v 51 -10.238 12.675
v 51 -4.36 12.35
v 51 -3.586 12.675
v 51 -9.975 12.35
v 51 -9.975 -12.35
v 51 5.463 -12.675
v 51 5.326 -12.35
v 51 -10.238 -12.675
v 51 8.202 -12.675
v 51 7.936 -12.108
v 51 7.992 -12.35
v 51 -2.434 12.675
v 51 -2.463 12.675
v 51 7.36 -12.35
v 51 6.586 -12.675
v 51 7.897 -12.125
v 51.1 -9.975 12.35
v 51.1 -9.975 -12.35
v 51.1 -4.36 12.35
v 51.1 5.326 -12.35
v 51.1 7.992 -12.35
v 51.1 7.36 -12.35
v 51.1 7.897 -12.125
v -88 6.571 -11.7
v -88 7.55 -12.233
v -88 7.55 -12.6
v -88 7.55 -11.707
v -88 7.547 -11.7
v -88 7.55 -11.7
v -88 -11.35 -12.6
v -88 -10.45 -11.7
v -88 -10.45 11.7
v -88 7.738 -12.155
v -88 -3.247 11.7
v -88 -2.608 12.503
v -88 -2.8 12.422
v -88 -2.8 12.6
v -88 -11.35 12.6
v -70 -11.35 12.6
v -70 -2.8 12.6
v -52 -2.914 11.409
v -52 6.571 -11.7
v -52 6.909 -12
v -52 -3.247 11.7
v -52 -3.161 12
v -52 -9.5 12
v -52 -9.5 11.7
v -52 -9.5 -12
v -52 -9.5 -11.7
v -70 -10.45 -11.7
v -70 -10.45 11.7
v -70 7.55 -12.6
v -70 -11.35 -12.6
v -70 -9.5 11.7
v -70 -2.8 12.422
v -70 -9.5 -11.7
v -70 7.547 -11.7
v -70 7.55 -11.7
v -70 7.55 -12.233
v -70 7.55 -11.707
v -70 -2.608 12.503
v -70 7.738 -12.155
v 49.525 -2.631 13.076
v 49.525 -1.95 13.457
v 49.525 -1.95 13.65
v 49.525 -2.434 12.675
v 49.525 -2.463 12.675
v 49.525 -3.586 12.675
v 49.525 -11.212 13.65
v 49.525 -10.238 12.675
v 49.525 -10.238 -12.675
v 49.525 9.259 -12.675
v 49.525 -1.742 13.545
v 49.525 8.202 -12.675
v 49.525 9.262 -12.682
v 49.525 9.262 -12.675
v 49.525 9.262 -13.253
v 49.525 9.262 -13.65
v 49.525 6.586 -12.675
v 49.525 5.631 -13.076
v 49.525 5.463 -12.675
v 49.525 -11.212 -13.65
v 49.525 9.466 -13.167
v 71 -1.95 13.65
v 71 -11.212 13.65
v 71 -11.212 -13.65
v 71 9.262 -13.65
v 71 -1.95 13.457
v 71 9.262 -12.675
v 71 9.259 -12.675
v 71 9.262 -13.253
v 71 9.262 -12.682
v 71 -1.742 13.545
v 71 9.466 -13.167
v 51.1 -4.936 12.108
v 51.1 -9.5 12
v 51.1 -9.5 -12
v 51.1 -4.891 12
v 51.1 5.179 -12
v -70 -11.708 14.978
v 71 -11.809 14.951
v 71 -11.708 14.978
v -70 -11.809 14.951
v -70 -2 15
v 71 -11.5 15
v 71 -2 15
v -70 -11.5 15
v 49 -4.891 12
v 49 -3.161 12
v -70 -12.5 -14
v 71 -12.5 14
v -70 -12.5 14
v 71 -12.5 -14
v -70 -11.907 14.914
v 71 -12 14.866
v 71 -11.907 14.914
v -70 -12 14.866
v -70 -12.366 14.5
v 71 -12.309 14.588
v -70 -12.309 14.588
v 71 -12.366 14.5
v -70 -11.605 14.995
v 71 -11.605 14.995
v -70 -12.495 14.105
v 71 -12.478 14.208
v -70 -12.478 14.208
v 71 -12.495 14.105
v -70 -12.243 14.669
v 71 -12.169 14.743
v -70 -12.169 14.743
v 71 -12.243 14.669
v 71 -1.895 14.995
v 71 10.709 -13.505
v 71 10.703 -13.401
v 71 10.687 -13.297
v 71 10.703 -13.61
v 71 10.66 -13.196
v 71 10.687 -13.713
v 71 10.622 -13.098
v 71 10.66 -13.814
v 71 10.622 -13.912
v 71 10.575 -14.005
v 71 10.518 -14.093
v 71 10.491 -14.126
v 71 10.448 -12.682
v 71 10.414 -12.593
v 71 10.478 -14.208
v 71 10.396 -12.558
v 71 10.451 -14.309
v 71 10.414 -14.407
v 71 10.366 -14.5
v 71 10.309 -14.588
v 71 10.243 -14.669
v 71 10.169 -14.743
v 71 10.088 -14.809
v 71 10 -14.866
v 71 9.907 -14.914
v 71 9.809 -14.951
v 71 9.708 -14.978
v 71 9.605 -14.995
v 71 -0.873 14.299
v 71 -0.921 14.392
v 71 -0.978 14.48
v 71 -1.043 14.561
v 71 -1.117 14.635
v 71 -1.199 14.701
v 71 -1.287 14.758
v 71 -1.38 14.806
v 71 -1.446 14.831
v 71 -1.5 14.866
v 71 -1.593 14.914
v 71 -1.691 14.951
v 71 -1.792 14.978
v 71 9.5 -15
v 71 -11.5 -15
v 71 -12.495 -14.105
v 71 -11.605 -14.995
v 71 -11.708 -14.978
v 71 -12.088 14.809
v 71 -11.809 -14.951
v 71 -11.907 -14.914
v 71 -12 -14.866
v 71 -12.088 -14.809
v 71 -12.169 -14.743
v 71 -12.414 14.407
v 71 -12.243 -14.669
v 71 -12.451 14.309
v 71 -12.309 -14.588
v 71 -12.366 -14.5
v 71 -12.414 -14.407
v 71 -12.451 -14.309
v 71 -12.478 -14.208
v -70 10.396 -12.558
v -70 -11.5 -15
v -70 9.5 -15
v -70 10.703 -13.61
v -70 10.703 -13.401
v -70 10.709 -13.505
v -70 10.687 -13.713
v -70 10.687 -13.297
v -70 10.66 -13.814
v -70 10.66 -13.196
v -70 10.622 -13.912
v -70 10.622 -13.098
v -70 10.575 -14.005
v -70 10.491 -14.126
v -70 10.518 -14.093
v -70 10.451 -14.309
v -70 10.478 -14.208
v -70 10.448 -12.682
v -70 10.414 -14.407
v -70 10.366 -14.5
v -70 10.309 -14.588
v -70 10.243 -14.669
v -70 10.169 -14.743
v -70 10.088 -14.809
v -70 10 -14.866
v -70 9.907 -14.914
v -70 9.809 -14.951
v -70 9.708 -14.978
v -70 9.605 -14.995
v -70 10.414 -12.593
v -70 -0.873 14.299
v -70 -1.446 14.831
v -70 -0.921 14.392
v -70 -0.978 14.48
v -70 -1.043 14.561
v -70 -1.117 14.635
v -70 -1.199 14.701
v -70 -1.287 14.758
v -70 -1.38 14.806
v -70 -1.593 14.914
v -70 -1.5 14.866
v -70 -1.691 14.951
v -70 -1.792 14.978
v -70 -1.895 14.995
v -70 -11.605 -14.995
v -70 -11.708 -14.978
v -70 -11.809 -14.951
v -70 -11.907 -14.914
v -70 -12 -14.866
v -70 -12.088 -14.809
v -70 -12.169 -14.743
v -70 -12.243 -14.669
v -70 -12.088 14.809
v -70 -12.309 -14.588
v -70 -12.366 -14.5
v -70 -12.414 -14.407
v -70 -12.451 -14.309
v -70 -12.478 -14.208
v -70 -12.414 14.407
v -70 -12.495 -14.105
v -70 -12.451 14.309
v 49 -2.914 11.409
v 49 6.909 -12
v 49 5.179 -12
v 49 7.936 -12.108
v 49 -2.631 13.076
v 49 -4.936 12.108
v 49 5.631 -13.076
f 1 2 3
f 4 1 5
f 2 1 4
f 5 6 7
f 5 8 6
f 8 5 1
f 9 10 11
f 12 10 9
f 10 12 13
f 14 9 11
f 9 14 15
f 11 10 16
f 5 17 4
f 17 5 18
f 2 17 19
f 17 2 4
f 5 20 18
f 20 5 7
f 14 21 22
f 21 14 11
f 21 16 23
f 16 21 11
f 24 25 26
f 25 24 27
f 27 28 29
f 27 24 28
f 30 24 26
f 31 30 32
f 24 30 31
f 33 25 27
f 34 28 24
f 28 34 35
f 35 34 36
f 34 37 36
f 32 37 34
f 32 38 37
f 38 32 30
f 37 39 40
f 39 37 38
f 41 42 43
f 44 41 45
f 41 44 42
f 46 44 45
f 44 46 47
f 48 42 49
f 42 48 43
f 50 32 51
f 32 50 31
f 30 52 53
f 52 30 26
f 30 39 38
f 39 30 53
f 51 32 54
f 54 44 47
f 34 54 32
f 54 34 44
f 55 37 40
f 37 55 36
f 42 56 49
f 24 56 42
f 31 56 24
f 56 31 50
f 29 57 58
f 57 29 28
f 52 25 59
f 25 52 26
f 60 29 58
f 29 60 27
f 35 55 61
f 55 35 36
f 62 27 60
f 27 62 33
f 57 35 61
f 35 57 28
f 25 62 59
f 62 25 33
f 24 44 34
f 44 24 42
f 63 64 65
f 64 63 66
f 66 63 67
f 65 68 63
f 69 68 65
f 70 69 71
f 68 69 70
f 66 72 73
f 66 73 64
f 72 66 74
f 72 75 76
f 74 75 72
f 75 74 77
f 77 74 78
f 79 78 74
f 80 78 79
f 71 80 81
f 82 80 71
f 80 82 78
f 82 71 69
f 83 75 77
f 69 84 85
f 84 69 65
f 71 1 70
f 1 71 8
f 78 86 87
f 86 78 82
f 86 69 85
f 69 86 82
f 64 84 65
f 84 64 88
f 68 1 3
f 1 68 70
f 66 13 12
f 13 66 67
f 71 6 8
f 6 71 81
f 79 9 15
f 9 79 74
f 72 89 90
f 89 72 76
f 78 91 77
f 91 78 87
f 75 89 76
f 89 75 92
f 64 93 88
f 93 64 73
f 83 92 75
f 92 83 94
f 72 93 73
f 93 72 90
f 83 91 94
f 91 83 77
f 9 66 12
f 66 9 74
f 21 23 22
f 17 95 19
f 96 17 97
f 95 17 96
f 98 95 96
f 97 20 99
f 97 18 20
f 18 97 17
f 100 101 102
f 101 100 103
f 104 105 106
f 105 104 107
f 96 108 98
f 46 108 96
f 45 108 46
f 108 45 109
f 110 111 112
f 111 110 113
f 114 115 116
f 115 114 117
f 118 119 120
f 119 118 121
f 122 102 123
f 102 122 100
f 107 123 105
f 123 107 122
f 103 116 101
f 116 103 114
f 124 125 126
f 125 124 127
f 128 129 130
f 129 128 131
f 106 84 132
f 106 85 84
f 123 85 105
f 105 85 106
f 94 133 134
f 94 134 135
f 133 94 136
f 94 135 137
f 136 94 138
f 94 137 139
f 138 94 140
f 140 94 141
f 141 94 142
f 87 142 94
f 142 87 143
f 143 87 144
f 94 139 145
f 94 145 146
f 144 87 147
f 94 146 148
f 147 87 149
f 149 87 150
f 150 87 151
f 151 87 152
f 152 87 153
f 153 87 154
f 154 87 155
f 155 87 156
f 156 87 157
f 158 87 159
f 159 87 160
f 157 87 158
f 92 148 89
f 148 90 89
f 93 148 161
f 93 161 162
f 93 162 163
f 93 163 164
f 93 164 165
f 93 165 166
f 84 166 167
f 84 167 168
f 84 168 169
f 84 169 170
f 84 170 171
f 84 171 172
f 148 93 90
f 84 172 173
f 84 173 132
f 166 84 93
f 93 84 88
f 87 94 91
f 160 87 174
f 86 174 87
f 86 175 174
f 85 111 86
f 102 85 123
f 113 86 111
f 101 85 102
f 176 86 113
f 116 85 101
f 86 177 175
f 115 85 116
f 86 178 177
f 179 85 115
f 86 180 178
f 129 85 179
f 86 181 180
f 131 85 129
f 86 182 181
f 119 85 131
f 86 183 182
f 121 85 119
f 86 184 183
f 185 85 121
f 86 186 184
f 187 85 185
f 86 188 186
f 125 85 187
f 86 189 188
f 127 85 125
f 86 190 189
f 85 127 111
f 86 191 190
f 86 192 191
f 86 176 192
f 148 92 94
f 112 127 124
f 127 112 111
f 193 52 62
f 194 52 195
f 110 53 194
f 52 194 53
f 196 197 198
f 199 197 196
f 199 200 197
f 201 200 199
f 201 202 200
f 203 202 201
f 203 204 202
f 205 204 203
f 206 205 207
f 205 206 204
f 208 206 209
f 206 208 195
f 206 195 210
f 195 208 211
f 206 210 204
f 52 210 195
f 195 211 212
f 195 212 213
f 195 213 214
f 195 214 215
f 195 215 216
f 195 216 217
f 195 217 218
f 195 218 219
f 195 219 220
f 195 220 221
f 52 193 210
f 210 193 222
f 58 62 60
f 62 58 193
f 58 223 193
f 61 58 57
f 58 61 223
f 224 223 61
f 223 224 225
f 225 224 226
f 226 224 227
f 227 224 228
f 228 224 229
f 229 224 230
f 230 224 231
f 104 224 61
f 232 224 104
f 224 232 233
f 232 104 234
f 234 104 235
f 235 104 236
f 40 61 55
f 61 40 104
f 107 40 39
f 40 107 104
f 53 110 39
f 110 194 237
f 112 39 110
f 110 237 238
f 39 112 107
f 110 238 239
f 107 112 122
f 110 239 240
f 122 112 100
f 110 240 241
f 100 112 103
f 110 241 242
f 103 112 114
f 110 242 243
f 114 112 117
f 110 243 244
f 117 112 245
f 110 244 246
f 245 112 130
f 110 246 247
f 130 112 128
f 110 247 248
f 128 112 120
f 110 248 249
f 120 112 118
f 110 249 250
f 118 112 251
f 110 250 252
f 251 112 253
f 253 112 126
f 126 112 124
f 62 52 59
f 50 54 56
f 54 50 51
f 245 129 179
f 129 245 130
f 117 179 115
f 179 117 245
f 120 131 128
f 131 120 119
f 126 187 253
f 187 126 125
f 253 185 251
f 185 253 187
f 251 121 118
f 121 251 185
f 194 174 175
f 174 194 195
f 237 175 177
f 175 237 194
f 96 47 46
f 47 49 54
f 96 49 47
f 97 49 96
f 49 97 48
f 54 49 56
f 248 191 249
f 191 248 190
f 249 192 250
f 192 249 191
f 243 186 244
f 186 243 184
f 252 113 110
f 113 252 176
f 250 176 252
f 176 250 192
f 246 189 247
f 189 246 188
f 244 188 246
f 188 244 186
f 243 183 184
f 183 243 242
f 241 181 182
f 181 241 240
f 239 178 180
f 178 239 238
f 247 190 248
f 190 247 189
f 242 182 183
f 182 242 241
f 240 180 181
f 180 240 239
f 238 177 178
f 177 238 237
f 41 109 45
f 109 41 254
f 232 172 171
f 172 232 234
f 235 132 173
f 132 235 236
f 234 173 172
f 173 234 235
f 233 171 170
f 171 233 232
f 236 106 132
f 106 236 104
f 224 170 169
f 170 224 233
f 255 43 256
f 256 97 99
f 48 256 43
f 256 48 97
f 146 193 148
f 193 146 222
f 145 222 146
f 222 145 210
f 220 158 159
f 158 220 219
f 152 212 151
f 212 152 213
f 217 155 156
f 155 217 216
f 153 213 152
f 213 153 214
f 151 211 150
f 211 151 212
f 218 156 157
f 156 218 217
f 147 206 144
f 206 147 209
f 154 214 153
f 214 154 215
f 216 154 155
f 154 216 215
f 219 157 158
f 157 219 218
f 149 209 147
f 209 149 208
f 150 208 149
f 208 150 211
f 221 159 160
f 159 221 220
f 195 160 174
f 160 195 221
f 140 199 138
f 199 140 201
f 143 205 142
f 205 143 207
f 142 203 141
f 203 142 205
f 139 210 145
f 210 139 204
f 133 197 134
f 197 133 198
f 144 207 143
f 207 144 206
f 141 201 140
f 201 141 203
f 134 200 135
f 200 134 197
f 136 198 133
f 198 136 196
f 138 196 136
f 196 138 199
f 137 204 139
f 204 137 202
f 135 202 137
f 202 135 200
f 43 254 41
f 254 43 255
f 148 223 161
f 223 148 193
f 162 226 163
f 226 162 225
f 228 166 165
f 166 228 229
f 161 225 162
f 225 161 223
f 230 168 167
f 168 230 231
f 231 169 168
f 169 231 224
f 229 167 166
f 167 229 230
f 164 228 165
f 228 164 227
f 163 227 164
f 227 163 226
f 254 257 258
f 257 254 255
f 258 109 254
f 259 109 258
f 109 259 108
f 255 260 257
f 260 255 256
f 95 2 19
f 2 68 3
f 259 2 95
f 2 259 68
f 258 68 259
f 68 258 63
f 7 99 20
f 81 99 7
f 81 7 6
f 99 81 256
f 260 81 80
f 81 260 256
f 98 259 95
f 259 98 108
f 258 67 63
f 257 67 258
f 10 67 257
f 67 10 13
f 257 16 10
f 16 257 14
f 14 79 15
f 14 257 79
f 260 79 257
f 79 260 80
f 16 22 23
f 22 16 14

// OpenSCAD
// Tipp Kick Bande


LA = 140.0;          // Länge
BU = 22.0;          // Breite unten
BO = 10.0;          // Breite oben
HO = 30.0;          // Höhe

WA = 1.0;           // Wandstärke


module roundedCube(v) {
    cube(v, center=true);
    translate([0,0,v[2]/2-1])
    rotate([0,90,0])
    cylinder(d=1,h=v[0], $fn=60, center=true);
    translate([0,0,-v[2]/2+1])
    rotate([0,90,0])
    cylinder(d=1,h=v[0], $fn=60, center=true);
}

module Body(LA=LA) {
    translate([0,-BU/2,0])
    cube([LA,WA,HO-2],center=true);              // Gerade Bandenwand
    translate([0,-BO/2-1.5*WA,HO/2-1.5])
    cube([LA,BO-1*WA,WA],center=true);           // Bande oben
    translate([0,-0.5*WA,-HO/2+1.5])
    cube([LA,BU-2*WA,WA],center=true);           // Bande unten

    translate([0,BU/4-2.0,0])
    rotate([Bandenwinkel(),0,0])
    cube([LA,WA,Bandenhypothenuse()-2.6],center=true);  // schräge Bandenwand
}


function Bandenwinkel() = 180/PI*tan(BU-BO/HO);         // Gegenkathete / Ankathete
function Bandenhypothenuse() = sqrt((HO*HO) + ((BU-BO)*(BU-BO)));    // Phytagoras

module Bande() {
    
    difference() {
        minkowski() {
            Body();

            rotate([0,90,0])
            cylinder(r=1,$fn=60);
        }
        
        translate([LA/2,0,0])
        scale(0.975)
        Body(40+2);
        
        translate([LA/2,0,0])
        scale(0.95)
        Body(40);
        translate([LA/2,0,0])
        scale(0.9)
        Body(40+2);

        translate([LA/2,BU/4-4.0,0])
        rotate([Bandenwinkel(),0,0])
        cube([40+2,2.5,Bandenhypothenuse()-5],center=true);  // schräge Bandenwand

    }

    translate([-LA/2,-WA,0])
    scale(0.9)
    Body(40);
    
}
Bande();
